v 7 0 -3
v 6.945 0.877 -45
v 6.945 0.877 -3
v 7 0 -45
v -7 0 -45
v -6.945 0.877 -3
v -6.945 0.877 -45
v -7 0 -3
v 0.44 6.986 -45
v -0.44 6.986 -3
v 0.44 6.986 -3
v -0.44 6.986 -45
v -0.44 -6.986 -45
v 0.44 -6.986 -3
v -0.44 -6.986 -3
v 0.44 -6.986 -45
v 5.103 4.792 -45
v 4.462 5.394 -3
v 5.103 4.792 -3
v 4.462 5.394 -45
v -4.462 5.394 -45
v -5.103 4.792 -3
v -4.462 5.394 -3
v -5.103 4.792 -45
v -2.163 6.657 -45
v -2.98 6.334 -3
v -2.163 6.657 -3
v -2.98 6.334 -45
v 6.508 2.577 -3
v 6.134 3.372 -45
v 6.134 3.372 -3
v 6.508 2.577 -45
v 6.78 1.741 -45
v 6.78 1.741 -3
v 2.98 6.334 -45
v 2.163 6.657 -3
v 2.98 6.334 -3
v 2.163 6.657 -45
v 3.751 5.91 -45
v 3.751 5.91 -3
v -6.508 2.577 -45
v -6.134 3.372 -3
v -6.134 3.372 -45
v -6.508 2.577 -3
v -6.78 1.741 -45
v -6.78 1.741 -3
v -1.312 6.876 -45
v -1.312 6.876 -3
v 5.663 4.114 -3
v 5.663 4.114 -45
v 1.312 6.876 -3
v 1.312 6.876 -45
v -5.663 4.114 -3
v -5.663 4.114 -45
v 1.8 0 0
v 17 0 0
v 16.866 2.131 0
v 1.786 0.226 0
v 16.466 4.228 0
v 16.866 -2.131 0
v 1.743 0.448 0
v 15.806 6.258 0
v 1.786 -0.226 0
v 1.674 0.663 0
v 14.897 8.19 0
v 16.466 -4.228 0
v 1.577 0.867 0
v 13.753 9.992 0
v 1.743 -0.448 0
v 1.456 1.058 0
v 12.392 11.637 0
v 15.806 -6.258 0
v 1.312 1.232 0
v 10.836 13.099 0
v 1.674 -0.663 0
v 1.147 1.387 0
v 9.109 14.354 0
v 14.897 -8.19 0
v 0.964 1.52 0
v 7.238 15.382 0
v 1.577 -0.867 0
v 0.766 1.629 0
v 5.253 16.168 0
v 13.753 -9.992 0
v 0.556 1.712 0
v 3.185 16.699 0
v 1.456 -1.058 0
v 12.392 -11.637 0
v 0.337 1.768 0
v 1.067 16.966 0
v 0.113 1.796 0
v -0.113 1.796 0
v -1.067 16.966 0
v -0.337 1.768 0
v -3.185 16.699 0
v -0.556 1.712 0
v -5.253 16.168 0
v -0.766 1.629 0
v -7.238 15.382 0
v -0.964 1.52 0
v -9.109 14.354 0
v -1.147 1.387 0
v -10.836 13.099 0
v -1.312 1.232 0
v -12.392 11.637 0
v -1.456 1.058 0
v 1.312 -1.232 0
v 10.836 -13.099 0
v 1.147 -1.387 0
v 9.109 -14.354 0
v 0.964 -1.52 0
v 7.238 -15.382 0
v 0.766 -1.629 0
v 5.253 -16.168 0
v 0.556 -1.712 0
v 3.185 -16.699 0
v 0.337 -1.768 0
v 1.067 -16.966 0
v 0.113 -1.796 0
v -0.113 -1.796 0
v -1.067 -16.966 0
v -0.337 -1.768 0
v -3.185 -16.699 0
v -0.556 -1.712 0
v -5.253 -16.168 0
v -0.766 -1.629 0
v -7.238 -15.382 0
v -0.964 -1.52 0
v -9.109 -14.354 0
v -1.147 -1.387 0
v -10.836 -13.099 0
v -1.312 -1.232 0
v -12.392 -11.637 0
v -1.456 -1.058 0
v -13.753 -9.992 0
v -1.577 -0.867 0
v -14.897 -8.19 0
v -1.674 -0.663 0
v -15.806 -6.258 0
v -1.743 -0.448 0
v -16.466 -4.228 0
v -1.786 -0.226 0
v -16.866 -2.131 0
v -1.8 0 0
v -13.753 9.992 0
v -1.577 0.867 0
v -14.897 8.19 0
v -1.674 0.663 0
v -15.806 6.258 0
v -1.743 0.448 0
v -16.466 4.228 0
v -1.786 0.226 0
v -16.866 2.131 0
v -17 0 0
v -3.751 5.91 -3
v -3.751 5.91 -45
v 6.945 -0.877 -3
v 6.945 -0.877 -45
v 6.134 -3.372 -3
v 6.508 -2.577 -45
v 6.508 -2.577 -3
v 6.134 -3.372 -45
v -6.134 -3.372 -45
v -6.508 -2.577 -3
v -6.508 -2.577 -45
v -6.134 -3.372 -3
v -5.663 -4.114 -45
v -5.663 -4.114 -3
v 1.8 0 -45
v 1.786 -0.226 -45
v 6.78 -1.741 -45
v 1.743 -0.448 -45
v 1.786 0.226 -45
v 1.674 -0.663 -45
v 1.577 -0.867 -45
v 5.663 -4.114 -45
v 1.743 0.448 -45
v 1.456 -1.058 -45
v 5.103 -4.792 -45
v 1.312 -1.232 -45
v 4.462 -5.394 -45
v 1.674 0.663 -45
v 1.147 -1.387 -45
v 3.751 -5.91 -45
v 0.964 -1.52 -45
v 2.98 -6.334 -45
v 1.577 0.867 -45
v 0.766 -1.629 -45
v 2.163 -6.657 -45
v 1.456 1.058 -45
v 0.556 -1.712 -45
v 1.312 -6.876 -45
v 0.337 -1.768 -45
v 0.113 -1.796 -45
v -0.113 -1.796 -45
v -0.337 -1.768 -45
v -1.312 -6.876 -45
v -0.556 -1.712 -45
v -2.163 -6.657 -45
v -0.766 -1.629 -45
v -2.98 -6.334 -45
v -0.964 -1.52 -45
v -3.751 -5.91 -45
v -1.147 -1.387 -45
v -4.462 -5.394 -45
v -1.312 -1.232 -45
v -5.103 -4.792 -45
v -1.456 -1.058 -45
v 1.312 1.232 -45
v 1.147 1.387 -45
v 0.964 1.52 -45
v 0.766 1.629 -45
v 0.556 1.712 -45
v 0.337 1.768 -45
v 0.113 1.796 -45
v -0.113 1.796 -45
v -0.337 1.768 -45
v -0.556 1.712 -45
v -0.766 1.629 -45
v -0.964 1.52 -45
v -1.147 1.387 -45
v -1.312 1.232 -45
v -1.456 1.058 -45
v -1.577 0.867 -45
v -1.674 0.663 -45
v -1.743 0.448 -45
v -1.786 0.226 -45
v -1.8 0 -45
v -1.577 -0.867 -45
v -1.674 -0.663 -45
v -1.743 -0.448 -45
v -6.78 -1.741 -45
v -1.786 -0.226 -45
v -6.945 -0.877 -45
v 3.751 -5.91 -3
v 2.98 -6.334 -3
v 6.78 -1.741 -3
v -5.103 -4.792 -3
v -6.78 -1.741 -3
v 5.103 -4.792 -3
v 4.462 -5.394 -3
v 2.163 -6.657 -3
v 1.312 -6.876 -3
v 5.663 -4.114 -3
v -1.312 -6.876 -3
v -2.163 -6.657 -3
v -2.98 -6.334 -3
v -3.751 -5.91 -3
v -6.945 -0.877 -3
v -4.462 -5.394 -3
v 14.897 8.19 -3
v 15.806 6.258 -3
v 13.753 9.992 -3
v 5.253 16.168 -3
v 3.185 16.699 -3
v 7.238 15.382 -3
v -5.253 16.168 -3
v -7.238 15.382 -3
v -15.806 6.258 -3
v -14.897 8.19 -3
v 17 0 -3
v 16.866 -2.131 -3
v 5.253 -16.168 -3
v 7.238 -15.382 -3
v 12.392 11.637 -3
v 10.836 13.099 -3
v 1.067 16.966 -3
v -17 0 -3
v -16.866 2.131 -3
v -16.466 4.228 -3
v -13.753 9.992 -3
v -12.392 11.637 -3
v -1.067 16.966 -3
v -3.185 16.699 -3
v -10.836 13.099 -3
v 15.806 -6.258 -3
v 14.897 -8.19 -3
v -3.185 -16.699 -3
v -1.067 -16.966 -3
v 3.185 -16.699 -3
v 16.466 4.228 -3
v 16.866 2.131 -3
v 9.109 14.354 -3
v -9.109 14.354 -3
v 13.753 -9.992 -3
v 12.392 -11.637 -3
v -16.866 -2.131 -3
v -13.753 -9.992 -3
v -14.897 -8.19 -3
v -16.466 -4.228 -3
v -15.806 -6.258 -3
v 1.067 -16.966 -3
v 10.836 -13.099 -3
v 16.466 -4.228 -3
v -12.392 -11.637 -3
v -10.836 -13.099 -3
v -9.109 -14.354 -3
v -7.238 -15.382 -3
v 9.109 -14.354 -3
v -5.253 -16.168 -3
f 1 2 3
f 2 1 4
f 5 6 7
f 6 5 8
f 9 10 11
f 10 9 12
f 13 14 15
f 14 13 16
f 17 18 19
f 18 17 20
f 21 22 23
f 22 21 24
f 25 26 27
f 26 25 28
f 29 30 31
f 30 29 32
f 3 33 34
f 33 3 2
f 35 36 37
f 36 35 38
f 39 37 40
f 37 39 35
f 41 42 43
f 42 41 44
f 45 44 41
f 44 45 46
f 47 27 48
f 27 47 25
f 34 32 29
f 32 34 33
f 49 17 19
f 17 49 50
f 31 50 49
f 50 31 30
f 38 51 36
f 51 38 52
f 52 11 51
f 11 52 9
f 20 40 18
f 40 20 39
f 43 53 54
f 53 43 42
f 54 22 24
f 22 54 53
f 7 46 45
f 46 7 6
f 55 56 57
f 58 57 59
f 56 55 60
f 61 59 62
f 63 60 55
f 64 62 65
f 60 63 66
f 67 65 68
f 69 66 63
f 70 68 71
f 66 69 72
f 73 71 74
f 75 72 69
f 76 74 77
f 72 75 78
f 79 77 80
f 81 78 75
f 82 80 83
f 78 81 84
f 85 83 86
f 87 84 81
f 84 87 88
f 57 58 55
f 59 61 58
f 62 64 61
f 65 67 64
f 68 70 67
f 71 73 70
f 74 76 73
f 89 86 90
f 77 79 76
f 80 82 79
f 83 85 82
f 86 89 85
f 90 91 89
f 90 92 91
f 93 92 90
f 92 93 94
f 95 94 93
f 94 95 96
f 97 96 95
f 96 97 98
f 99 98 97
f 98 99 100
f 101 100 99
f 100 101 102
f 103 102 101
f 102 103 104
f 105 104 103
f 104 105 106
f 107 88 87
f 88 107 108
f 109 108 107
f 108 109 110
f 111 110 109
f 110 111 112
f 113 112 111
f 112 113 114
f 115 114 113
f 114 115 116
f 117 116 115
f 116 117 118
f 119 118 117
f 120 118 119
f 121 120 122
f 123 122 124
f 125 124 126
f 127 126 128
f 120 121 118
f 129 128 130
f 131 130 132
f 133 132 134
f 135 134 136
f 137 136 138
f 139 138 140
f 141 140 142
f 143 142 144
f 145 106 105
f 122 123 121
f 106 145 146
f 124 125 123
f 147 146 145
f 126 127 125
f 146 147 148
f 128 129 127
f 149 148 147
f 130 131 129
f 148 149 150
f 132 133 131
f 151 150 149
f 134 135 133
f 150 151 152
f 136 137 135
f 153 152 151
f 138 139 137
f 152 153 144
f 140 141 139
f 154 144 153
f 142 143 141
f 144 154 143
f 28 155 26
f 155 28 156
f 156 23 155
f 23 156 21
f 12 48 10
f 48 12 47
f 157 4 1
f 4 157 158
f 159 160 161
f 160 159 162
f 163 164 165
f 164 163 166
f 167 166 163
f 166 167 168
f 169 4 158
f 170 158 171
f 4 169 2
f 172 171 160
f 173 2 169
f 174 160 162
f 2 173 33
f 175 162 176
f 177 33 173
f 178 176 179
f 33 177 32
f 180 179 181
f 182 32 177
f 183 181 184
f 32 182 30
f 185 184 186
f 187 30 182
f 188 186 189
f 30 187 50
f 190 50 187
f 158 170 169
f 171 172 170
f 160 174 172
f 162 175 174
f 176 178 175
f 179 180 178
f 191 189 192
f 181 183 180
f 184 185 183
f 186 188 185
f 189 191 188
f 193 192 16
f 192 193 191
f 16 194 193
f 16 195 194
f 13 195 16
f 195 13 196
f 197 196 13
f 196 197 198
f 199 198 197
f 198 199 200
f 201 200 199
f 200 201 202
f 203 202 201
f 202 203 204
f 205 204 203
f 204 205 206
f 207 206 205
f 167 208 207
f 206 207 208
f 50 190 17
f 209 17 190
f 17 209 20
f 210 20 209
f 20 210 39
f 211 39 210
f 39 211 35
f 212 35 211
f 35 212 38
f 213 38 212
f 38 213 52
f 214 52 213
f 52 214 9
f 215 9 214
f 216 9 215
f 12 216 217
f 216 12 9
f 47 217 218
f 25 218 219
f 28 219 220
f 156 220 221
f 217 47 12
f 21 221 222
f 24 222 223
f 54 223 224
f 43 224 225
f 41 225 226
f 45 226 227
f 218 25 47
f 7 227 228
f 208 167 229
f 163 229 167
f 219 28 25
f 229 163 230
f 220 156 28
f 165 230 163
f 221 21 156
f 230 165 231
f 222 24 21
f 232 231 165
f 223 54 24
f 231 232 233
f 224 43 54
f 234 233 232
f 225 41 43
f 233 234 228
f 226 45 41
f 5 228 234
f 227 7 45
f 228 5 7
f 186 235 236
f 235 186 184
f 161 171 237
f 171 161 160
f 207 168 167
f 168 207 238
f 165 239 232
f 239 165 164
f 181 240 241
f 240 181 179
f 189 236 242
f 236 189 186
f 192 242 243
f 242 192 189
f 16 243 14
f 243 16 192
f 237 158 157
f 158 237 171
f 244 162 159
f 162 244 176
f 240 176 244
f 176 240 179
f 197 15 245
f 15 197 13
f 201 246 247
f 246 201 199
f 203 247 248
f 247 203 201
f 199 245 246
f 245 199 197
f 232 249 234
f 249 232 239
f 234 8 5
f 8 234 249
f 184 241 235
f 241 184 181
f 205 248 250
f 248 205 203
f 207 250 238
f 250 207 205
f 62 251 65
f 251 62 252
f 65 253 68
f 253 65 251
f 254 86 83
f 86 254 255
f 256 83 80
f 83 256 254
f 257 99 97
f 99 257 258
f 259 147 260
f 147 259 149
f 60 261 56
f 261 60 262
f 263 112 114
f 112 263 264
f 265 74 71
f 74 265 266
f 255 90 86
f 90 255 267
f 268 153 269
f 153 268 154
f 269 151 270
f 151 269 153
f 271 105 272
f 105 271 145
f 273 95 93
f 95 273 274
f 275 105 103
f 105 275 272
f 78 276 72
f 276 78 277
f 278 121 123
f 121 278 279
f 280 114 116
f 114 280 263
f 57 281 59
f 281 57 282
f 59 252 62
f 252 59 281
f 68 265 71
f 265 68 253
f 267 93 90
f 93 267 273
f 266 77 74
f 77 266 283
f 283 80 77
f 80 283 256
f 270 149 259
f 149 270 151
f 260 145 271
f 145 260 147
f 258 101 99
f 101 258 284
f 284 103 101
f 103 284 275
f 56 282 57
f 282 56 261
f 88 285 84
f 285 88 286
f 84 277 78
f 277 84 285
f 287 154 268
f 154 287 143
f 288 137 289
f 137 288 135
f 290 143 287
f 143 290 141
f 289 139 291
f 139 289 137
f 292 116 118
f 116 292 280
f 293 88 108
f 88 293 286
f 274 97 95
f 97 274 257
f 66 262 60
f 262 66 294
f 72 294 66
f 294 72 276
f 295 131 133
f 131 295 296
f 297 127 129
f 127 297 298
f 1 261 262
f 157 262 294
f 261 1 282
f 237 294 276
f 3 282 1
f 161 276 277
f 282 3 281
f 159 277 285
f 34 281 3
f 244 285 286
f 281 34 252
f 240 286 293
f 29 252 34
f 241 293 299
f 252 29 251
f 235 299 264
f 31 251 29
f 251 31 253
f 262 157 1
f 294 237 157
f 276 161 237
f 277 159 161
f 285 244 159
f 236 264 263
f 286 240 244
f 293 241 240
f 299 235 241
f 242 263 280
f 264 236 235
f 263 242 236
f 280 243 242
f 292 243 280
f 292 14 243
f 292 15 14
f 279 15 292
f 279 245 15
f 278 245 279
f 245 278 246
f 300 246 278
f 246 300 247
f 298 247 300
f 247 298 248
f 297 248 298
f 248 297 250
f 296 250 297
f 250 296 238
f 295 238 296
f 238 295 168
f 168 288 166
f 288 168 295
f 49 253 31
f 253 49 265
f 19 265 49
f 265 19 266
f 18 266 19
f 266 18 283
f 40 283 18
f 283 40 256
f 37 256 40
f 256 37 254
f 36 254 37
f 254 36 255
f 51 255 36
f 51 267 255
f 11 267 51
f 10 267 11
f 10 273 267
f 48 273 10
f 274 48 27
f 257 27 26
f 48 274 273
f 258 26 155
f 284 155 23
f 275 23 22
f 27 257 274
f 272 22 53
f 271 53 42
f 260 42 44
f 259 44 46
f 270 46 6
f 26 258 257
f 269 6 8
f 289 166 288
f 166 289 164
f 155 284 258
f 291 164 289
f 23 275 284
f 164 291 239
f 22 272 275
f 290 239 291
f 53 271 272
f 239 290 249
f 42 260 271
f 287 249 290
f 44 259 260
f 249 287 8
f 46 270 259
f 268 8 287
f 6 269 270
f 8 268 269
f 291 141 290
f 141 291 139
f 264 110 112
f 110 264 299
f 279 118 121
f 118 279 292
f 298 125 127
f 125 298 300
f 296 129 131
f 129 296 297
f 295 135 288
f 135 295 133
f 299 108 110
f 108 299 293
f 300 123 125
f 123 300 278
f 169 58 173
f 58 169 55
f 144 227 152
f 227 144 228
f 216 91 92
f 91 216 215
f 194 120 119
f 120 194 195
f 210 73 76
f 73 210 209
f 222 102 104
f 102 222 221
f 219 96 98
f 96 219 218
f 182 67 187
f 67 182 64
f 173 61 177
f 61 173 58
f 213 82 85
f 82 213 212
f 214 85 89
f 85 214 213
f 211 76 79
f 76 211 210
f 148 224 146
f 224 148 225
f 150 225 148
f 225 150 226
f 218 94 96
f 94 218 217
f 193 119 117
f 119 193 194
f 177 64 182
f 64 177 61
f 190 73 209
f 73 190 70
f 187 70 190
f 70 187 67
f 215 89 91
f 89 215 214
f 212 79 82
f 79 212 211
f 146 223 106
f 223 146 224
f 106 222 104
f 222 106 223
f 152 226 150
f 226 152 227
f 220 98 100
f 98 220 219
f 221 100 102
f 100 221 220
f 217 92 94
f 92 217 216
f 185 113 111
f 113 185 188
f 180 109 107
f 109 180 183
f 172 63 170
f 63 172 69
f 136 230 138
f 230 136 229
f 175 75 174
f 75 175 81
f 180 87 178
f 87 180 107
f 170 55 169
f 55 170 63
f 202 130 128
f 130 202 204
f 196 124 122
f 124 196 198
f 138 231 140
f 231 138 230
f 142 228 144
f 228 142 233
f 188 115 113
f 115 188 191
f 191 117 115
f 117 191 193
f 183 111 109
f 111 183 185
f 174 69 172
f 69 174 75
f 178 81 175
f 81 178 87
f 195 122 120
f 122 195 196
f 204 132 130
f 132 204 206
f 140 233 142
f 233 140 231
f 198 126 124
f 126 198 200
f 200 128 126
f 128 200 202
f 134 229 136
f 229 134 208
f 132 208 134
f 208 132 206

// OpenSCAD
$fn = 50;


difference() {
	union() {
		translate(v = [0, 0, -45.0000000000]) {
			cylinder(h = 45, r = 7.0000000000);
		}
		translate(v = [0, 0, -3.0000000000]) {
			cylinder(h = 3, r = 17.0000000000);
		}
	}
	union() {
		#translate(v = [0, 0, -45]) {
			cylinder(h = 45, r = 1.8000000000);
		}
	}
}
